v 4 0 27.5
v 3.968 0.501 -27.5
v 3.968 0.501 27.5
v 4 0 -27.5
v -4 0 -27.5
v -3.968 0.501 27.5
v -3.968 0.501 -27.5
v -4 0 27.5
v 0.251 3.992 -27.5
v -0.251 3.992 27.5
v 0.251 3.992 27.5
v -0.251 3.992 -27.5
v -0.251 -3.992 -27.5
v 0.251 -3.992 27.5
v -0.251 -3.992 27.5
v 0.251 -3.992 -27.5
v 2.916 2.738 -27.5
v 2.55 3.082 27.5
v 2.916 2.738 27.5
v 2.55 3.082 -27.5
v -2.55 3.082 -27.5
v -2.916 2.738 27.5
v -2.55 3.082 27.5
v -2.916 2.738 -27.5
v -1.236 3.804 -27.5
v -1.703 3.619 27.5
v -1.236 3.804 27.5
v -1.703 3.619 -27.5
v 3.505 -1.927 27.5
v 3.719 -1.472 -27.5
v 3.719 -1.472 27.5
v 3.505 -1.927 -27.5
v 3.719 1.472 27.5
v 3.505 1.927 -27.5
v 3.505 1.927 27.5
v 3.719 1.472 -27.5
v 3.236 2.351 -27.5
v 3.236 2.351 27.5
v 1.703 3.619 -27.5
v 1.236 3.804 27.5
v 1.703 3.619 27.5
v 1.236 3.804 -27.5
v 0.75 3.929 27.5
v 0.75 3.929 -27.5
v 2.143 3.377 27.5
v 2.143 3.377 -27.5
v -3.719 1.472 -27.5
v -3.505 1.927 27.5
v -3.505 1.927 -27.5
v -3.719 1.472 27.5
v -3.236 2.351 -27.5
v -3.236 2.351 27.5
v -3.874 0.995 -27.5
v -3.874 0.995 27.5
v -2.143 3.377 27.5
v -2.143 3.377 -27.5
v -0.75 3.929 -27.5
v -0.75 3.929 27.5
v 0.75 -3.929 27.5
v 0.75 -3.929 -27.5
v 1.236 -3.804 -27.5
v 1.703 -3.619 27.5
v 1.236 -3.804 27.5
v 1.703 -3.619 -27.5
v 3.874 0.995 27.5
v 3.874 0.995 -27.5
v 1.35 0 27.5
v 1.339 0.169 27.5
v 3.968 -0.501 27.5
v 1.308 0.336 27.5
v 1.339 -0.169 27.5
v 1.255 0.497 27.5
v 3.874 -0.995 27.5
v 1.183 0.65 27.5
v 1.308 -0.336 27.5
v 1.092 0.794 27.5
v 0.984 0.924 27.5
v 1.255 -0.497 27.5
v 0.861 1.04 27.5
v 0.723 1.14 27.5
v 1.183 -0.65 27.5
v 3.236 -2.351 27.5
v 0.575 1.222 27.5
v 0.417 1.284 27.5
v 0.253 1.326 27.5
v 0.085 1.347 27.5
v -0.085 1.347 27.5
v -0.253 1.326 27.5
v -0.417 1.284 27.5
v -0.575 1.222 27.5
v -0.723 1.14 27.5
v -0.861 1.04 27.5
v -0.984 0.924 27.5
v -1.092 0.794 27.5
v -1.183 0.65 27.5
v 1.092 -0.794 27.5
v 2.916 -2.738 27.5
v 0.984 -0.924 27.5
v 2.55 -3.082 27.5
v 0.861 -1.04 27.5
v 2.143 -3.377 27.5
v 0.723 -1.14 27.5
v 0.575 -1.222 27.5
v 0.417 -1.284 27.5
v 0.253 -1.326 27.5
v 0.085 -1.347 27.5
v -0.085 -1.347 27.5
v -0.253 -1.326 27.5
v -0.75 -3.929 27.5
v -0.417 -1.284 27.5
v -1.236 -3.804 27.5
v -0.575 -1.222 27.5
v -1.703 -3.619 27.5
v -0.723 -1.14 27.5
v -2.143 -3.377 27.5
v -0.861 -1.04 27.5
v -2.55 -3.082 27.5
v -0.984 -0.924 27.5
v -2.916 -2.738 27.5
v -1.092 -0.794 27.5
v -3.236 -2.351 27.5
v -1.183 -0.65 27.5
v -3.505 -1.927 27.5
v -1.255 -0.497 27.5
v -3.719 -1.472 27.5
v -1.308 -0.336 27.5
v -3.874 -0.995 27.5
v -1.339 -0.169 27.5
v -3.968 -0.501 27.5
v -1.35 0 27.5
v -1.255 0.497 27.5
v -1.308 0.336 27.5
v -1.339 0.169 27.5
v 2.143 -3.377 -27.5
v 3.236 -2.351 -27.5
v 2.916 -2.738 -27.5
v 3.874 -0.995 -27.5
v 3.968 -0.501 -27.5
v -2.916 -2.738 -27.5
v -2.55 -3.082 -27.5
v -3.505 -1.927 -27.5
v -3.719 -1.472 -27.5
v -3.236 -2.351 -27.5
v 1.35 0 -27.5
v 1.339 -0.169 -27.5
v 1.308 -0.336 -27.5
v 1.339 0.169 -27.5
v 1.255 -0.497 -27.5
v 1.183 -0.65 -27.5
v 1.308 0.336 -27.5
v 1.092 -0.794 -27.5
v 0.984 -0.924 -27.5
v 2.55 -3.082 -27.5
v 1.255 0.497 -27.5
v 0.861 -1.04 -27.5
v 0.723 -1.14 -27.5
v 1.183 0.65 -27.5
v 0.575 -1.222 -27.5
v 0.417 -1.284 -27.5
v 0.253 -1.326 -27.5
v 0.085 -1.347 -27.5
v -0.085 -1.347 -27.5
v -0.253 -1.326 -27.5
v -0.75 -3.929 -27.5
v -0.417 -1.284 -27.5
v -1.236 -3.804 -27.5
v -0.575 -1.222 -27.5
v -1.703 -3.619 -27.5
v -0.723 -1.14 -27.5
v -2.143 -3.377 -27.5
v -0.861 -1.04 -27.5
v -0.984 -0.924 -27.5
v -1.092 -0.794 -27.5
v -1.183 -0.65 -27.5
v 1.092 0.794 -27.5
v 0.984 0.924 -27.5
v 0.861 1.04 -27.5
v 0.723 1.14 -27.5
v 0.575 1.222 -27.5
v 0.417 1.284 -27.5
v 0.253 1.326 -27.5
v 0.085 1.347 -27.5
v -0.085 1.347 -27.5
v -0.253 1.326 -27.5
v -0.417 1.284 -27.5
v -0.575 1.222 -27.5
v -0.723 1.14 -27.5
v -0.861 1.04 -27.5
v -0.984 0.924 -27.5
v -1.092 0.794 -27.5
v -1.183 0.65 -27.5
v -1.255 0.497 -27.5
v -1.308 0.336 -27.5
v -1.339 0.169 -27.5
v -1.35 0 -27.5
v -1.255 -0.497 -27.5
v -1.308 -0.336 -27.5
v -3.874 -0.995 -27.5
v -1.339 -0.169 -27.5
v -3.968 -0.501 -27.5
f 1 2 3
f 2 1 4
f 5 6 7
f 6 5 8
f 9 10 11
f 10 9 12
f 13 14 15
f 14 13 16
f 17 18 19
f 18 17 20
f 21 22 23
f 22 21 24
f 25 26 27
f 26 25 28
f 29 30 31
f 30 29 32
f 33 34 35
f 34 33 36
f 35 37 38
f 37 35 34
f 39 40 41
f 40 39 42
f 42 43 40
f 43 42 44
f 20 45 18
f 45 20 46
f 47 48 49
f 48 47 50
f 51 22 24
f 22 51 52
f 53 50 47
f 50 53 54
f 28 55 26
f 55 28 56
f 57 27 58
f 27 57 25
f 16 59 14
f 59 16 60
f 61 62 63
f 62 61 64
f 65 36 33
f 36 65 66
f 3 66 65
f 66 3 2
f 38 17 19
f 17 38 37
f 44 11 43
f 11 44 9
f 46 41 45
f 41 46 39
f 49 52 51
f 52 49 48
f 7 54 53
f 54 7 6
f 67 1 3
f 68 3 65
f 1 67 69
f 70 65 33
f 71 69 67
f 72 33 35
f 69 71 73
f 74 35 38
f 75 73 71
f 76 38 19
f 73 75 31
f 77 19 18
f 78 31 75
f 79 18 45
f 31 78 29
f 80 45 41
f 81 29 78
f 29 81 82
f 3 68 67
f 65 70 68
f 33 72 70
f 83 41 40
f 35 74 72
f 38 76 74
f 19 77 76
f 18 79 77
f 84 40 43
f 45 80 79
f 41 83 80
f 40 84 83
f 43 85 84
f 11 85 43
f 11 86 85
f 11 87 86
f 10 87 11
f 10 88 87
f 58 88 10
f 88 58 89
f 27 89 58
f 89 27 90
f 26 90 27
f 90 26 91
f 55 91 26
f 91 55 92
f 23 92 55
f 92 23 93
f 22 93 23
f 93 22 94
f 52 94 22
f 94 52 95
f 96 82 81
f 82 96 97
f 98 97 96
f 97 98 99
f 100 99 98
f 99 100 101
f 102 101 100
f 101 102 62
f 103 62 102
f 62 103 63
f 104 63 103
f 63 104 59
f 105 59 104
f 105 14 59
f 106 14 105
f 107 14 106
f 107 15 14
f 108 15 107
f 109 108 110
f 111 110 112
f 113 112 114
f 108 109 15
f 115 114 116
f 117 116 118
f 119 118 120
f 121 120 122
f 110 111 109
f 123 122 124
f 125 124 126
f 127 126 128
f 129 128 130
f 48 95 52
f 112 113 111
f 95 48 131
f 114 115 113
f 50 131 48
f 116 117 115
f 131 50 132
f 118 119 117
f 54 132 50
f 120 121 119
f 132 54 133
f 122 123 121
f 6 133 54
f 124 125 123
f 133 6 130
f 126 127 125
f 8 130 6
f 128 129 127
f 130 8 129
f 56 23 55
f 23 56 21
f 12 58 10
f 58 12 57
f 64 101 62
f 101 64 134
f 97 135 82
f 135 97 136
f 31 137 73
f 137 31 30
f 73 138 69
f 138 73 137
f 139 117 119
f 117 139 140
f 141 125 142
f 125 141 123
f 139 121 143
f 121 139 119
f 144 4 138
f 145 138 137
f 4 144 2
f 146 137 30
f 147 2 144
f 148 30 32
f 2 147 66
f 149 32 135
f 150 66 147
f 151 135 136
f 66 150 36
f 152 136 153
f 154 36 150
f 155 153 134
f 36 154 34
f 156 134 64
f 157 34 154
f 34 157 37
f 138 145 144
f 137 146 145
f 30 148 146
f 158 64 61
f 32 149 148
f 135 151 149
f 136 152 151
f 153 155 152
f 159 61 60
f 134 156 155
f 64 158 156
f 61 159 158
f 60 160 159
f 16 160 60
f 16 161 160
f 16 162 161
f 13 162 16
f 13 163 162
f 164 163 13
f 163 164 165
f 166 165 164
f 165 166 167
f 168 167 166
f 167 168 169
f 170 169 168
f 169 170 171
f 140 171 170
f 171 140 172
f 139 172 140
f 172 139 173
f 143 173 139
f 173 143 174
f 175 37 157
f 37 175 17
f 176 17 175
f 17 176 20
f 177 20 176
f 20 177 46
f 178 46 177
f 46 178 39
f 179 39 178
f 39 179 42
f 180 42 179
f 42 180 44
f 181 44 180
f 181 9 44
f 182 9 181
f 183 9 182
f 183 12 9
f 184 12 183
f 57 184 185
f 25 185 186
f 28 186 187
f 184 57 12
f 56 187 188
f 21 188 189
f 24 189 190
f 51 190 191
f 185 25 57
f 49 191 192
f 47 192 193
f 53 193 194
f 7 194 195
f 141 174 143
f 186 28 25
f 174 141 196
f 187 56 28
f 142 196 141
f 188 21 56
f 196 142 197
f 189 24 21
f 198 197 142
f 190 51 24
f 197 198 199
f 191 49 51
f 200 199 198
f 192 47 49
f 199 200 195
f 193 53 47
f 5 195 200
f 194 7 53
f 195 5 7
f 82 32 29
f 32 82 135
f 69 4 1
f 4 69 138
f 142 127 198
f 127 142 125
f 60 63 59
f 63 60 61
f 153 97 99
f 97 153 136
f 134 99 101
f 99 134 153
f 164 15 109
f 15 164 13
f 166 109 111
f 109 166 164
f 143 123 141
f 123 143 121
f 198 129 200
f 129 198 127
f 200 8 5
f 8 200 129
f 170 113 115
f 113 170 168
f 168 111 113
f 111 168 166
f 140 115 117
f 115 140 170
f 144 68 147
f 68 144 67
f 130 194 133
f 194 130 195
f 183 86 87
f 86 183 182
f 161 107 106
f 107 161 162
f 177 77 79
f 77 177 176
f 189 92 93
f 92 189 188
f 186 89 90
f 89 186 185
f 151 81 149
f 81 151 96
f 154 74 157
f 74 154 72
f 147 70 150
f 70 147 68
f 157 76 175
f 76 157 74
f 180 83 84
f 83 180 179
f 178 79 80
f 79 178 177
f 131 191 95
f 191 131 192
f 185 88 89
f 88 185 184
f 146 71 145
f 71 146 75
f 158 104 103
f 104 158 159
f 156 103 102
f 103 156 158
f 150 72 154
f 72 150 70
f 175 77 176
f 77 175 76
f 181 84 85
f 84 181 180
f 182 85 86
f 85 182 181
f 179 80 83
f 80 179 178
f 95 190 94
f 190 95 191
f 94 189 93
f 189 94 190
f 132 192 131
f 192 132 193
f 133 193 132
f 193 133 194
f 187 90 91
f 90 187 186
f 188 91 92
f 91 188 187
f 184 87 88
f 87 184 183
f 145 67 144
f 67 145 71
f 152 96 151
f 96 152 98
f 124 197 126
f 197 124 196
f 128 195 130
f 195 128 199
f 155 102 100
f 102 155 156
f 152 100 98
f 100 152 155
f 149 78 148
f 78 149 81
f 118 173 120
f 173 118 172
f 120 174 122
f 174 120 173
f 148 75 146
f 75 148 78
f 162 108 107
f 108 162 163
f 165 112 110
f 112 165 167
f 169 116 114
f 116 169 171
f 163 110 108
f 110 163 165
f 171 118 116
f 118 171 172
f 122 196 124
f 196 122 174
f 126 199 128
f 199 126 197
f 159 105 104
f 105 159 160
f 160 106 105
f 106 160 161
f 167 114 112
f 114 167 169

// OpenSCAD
$fn = 50;


difference() {
	union() {
		translate(v = [0, 0, -27.5000000000]) {
			cylinder(h = 55, r = 4.0000000000);
		}
	}
	union() {
		translate(v = [0, 0, -100.0000000000]) {
			cylinder(h = 200, r = 1.3500000000);
		}
	}
}
